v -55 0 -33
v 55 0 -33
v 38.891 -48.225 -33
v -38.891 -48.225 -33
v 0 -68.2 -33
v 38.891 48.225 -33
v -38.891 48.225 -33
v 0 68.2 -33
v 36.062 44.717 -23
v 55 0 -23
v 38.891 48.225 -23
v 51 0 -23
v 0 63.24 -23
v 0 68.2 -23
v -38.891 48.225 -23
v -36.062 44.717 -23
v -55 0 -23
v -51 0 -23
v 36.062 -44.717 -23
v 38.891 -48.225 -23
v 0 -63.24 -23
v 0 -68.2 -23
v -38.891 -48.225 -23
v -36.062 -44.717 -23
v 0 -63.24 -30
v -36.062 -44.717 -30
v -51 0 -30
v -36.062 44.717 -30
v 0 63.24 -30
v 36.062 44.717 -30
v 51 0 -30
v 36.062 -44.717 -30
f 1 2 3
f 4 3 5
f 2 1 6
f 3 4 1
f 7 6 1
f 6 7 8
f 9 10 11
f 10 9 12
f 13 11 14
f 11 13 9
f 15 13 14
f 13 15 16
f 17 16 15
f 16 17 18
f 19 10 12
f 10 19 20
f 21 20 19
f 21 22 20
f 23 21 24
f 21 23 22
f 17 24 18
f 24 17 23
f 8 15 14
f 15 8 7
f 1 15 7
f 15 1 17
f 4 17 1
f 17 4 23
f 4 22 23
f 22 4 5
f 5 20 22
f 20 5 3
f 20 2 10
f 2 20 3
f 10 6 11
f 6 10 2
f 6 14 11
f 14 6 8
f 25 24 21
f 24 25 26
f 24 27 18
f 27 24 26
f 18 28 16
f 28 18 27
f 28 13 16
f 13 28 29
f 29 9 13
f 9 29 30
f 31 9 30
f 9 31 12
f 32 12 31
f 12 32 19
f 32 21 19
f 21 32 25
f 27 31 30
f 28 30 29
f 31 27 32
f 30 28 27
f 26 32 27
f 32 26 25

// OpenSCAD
// Generated by SolidPython 1.1.3 on 2023-02-10 20:43:02


union() {
	translate(v = [0, 0, -33]) {
		linear_extrude(height = 10) {
			polygon(points = [[55.0000000000, 0.0000000000], [38.890872965260115, 48.22468247692255], [3.3677786976552217e-15, 68.2], [-38.89087296526011, 48.22468247692255], [-55.00000000000001, 8.35209117018495e-15], [-38.89087296526013, -48.224682476922546], [-1.0103336092965664e-14, -68.2], [38.89087296526011, -48.22468247692256], [55.00000000000001, -1.67041823403699e-14], [51.0, -1.5489332715615725e-14], [36.06244584051392, -44.71743284223728], [-9.368548013477251e-15, -63.24], [-36.06244584051393, -44.717432842237265], [-51.0, 7.744666357807862e-15], [-36.06244584051392, 44.71743284223727], [3.1228493378257506e-15, 63.24], [36.062445840513924, 44.71743284223727], [51.0000000000, 0.0000000000]]);
		}
	}
	translate(v = [0, 0, -33]) {
		linear_extrude(height = 3) {
			polygon(points = [[55.0000000000, 0.0000000000], [38.890872965260115, 48.22468247692255], [3.3677786976552217e-15, 68.2], [-38.89087296526011, 48.22468247692255], [-55.00000000000001, 8.35209117018495e-15], [-38.89087296526013, -48.224682476922546], [-1.0103336092965664e-14, -68.2], [38.89087296526011, -48.22468247692256], [55.00000000000001, -1.67041823403699e-14]]);
		}
	}
}
/***********************************************
*********      SolidPython code:      **********
************************************************
 
from numpy import *
from numpy.linalg import *
from solid import *
from solid.utils import *


def create_shape():
    shape = import_stl('duck.stl')
    bx = [-50, 50]
    by = [-62, 62]
    bz = [-30, 78]
    ox = 0
    oy = -10
    return shape, (bx, by, bz), (ox, oy)


def create_mold(shape, aabb, origin, n=4, print_to_files=False):
    bx, by, bz = aabb
    dx = bx[1] - bx[0]
    dy = by[1] - by[0]
    dz = bz[1] - bz[0]
    ox = bx[0] + dx / 2
    oy = by[0] + dy / 2
    rx = dx / 2
    ry = dy / 2

    model = cube(0)
    points = [[rx, 0]]
    molds = []
    pa = 0
    for a in linspace(0, 2*pi, n + 1, endpoint=True)[1:]:
        px = rx * cos(pa)
        py = ry * sin(pa)
        qx = rx * cos(a)
        qy = ry * sin(a)
        points.append([qx, qy])

        mold_part = polygon(points=[
            origin,
            [ox + px, oy + py],
            [ox + qx, oy + qy],
        ])
        mold_part = linear_extrude(dz)(mold_part)
        mold_part = translate((0, 0, bz[0]))(mold_part)
        mold_part -= shape
        mold_part = color([1, 1, 0], 0.5)(mold_part)
        model += mold_part

        slope = atan2(qy - py, qx - px)
        o = array(origin)
        p = array((ox + px, oy + py))
        q = array((ox + qx, oy + qy))
        d = abs(cross(p - q, o - q)) / norm(p - q)
        mold_part = translate((-origin[0], -origin[1], 0))(mold_part)
        mold_part = rotate((0, 0, -slope / pi * 180))(mold_part)
        mold_part = translate((0, d, -dz - bz[0]))(mold_part)
        mold_part = rotate((90, 0, 0))(mold_part)

        molds.append(mold_part)
        pa = a

    if print_to_files:
        import pathlib
        pathlib.Path('molds').mkdir(exist_ok=True)
        for i, mold in enumerate(molds):
            scad_render_to_file(mold, f"mold-{i + 1}.scad")

    def sc(points, scale):
        return [[p[0]*scale, p[1]*scale] for p in points]
    scaffold = polygon(points=sc(points, 1.1) + sc(points[::-1], 1.02))
    scaffold_bottom = polygon(points=sc(points, 1.1))
    scaffold = linear_extrude(10)(scaffold)
    scaffold_bottom = linear_extrude(3)(scaffold_bottom)
    scaffold = translate((0, 0, bz[0] - 3))(scaffold)
    scaffold_bottom = translate((0, 0, bz[0] - 3))(scaffold_bottom)
    scaffold += scaffold_bottom
    if print_to_files:
        import pathlib
        pathlib.Path('molds').mkdir(exist_ok=True)
        scad_render_to_file(scaffold, "mold-scaffold.scad")
    model += scaffold

    return model, molds


shape, aabb, origin = create_shape()
model, _ = create_mold(shape, aabb, origin, n=8, print_to_files=True)

scad_render_to_file(shape + model, 'mold.scad')
 
 
************************************************/
